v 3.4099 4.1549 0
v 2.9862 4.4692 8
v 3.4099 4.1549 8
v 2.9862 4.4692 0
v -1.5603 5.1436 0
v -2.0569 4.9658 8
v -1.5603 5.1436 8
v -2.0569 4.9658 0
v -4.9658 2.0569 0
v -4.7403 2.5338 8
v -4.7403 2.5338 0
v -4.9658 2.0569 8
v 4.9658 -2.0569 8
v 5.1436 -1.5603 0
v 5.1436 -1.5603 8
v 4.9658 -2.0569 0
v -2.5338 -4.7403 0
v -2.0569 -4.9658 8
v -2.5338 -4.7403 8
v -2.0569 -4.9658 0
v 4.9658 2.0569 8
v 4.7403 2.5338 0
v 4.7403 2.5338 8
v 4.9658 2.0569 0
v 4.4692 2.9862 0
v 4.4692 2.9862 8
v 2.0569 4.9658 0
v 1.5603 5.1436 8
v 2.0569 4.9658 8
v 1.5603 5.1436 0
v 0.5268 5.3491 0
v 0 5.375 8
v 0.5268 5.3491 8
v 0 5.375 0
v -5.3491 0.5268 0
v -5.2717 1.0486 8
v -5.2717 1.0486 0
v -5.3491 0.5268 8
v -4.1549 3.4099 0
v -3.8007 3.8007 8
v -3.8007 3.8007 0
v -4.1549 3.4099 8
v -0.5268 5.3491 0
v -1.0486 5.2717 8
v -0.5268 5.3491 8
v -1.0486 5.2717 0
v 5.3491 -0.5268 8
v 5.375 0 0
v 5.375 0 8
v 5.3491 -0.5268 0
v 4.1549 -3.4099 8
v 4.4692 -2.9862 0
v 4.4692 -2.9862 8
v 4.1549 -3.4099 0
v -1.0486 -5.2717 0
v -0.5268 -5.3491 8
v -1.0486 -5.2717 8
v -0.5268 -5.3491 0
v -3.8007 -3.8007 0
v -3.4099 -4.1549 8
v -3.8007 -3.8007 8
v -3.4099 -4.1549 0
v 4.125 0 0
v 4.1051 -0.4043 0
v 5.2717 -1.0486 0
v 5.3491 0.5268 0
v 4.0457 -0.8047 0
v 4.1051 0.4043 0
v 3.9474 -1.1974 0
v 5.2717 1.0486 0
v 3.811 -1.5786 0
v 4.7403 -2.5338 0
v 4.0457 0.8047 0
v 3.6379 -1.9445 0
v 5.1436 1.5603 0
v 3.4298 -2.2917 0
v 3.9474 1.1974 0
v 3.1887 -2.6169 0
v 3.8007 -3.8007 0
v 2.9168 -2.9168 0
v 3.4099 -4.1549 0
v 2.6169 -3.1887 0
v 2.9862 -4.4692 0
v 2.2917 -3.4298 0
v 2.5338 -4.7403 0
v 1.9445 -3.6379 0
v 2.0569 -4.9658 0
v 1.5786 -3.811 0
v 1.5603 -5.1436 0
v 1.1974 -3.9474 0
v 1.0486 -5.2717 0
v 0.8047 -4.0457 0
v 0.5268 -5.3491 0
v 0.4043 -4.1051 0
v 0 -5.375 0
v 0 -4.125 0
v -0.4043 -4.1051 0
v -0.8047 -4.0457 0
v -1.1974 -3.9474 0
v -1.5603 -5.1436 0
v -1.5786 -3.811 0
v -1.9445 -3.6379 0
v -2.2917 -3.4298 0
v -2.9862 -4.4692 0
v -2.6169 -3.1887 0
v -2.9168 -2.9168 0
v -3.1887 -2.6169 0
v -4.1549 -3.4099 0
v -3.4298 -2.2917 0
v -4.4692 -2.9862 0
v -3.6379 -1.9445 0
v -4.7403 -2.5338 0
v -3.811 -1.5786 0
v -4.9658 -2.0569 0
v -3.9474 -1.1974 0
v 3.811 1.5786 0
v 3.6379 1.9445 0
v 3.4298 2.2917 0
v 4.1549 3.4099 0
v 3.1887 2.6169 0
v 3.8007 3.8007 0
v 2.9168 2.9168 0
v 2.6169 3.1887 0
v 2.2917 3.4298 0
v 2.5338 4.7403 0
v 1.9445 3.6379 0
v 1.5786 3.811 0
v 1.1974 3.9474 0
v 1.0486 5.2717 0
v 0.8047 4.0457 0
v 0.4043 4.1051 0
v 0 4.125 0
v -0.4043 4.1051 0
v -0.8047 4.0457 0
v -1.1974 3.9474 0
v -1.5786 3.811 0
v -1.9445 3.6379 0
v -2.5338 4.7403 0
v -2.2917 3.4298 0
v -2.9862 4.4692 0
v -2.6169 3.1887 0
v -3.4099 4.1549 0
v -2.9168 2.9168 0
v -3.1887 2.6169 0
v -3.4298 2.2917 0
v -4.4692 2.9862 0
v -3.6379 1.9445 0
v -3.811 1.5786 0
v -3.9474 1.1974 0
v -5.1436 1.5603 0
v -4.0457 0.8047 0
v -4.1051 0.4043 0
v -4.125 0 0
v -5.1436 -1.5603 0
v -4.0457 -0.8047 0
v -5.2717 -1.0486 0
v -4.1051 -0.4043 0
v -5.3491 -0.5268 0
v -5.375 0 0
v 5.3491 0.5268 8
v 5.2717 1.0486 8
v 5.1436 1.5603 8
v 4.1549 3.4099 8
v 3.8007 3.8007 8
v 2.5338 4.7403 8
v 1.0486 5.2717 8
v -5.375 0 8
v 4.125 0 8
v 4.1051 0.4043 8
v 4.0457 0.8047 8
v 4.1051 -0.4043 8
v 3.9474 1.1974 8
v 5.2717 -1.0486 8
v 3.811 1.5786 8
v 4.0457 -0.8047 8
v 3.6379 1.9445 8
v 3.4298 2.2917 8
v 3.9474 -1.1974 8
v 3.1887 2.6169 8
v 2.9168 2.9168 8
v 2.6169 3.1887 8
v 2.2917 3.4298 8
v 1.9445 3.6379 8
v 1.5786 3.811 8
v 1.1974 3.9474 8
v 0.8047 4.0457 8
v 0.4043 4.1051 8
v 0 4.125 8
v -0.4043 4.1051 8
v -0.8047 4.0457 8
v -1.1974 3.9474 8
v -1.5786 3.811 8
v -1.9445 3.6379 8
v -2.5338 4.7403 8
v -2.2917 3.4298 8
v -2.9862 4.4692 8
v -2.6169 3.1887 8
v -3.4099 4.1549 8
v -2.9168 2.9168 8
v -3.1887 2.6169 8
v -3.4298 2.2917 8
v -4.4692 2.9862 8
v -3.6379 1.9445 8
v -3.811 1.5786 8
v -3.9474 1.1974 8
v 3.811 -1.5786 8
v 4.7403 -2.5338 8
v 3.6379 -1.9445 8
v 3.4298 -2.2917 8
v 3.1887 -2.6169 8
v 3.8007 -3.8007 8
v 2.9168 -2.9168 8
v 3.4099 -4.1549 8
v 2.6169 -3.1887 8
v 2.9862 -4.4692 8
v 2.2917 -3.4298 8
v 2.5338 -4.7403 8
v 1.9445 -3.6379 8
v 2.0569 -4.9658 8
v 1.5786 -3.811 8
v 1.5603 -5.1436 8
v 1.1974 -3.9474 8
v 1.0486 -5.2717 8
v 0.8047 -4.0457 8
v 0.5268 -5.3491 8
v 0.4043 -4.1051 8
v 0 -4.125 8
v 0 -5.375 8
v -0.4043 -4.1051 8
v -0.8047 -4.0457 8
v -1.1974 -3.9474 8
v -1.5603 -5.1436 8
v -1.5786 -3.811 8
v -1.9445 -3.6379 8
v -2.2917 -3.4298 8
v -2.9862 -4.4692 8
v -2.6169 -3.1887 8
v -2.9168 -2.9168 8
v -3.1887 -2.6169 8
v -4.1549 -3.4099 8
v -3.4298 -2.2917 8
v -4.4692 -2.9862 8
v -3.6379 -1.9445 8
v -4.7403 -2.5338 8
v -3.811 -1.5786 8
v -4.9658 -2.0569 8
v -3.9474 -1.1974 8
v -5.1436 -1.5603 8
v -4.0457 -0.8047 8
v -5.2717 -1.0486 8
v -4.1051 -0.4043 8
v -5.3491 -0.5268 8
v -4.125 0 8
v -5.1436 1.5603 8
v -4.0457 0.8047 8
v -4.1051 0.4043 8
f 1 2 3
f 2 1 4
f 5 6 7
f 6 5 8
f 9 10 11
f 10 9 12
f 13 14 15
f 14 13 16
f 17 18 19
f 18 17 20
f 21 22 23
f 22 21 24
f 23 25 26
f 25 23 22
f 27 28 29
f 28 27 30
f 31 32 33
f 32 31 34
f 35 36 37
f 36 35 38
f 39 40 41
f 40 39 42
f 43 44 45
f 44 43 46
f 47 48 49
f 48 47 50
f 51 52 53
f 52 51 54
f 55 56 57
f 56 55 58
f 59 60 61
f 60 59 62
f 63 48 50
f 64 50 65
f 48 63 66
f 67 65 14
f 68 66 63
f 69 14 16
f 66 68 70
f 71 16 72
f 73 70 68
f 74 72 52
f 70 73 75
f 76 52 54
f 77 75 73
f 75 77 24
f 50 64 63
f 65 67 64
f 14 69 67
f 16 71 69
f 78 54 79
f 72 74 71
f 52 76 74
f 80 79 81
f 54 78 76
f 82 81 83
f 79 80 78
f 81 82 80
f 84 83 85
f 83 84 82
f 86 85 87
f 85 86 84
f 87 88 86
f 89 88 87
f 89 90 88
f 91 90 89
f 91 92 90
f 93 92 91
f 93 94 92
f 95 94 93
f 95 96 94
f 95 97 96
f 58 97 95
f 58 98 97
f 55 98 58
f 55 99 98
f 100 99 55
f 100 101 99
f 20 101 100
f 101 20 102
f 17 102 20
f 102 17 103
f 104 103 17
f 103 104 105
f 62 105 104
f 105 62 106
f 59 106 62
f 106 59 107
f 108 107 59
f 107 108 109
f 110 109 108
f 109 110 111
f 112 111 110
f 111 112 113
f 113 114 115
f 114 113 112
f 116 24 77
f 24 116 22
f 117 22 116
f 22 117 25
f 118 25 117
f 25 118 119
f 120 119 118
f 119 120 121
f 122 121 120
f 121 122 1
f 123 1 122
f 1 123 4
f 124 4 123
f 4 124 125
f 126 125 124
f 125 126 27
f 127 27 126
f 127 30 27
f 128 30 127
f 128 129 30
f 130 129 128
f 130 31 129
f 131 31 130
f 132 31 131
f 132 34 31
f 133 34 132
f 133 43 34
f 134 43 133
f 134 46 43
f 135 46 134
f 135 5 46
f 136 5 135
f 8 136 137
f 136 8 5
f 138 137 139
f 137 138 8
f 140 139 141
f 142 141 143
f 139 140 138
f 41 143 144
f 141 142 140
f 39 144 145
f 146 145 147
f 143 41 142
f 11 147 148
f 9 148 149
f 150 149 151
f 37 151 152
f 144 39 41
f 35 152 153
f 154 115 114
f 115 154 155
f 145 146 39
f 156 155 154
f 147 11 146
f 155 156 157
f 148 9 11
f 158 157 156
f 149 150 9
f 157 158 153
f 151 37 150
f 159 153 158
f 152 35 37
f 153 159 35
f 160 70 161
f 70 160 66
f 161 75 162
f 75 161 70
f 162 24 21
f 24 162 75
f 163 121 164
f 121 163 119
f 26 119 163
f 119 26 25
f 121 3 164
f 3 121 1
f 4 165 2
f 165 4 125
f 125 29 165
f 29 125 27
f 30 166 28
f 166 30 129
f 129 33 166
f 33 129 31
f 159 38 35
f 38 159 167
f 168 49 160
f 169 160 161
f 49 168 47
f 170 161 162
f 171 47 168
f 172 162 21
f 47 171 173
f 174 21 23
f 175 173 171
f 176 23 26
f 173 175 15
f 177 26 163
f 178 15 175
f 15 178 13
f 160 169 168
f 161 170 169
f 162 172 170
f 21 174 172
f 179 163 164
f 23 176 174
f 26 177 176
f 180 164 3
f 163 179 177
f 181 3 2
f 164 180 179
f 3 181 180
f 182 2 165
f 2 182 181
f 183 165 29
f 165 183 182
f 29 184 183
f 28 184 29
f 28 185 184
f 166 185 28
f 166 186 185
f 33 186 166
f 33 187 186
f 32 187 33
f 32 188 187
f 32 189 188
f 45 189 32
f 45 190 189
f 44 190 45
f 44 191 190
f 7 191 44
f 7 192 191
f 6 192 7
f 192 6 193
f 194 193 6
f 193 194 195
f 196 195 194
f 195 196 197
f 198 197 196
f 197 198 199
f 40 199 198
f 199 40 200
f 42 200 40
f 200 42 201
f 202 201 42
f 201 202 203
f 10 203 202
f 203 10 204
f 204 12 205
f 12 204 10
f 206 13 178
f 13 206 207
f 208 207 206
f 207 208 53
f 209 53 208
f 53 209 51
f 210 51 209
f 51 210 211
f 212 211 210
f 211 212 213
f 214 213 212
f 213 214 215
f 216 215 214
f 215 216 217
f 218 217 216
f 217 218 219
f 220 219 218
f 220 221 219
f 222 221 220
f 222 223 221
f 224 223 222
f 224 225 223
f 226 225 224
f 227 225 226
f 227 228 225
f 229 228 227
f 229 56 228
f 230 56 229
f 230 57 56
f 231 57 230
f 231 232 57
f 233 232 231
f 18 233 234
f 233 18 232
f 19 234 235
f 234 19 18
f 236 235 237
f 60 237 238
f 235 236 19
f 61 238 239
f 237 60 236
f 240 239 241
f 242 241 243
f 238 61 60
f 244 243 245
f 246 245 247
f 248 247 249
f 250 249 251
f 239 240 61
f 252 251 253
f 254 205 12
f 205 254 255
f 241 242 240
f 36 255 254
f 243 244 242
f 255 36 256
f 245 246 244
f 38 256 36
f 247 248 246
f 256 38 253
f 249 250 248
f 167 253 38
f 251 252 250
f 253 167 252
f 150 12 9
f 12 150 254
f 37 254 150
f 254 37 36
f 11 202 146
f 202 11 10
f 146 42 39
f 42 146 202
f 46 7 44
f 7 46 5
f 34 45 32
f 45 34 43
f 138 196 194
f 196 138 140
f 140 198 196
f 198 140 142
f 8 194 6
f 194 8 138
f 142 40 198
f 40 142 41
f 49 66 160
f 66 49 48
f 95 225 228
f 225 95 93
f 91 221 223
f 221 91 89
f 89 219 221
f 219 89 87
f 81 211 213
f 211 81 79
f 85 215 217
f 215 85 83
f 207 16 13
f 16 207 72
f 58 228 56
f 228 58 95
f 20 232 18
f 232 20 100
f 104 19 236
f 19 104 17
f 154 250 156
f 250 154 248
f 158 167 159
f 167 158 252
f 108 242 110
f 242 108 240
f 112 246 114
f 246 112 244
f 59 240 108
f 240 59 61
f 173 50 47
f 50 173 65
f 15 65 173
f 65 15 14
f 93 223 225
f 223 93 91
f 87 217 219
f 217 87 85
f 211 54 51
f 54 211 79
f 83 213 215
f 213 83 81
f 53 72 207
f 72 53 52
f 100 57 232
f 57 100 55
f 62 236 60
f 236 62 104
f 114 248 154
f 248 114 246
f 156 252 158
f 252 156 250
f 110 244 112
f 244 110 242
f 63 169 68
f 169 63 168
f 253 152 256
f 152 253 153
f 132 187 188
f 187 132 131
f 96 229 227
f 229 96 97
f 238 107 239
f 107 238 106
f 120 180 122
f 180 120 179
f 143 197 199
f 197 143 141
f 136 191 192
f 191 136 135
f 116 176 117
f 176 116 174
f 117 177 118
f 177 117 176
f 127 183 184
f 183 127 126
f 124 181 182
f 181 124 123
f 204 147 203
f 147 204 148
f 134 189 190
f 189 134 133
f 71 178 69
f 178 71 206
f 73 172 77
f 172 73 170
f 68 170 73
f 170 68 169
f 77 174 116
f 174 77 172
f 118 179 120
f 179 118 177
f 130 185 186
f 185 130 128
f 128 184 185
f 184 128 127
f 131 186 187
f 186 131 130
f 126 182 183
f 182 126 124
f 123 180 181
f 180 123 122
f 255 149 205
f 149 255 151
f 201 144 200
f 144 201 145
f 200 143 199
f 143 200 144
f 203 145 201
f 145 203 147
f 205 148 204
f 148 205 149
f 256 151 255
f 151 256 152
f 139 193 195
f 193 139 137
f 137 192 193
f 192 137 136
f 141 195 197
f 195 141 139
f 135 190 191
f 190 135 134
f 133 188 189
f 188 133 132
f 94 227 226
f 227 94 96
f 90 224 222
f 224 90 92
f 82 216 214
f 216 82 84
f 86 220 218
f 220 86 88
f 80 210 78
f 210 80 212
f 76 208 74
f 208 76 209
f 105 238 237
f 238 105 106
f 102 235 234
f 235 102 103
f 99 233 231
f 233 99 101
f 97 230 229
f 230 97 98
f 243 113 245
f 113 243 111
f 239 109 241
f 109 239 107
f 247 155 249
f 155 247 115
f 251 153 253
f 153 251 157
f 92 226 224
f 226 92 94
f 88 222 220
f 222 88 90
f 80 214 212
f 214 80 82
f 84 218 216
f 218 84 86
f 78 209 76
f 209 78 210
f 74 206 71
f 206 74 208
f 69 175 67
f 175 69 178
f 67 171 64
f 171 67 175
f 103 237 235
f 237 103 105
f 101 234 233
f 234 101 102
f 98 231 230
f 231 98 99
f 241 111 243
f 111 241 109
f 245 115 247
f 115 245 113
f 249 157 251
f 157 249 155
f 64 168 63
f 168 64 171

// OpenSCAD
diameter = 8.25;
height = 8;
thickness = 2.5;

difference() {
    cylinder(d=diameter+thickness,h=height,$fn=64);
    translate([0,0,-1]) cylinder(d=diameter,h=height+2,$fn=64);
}
